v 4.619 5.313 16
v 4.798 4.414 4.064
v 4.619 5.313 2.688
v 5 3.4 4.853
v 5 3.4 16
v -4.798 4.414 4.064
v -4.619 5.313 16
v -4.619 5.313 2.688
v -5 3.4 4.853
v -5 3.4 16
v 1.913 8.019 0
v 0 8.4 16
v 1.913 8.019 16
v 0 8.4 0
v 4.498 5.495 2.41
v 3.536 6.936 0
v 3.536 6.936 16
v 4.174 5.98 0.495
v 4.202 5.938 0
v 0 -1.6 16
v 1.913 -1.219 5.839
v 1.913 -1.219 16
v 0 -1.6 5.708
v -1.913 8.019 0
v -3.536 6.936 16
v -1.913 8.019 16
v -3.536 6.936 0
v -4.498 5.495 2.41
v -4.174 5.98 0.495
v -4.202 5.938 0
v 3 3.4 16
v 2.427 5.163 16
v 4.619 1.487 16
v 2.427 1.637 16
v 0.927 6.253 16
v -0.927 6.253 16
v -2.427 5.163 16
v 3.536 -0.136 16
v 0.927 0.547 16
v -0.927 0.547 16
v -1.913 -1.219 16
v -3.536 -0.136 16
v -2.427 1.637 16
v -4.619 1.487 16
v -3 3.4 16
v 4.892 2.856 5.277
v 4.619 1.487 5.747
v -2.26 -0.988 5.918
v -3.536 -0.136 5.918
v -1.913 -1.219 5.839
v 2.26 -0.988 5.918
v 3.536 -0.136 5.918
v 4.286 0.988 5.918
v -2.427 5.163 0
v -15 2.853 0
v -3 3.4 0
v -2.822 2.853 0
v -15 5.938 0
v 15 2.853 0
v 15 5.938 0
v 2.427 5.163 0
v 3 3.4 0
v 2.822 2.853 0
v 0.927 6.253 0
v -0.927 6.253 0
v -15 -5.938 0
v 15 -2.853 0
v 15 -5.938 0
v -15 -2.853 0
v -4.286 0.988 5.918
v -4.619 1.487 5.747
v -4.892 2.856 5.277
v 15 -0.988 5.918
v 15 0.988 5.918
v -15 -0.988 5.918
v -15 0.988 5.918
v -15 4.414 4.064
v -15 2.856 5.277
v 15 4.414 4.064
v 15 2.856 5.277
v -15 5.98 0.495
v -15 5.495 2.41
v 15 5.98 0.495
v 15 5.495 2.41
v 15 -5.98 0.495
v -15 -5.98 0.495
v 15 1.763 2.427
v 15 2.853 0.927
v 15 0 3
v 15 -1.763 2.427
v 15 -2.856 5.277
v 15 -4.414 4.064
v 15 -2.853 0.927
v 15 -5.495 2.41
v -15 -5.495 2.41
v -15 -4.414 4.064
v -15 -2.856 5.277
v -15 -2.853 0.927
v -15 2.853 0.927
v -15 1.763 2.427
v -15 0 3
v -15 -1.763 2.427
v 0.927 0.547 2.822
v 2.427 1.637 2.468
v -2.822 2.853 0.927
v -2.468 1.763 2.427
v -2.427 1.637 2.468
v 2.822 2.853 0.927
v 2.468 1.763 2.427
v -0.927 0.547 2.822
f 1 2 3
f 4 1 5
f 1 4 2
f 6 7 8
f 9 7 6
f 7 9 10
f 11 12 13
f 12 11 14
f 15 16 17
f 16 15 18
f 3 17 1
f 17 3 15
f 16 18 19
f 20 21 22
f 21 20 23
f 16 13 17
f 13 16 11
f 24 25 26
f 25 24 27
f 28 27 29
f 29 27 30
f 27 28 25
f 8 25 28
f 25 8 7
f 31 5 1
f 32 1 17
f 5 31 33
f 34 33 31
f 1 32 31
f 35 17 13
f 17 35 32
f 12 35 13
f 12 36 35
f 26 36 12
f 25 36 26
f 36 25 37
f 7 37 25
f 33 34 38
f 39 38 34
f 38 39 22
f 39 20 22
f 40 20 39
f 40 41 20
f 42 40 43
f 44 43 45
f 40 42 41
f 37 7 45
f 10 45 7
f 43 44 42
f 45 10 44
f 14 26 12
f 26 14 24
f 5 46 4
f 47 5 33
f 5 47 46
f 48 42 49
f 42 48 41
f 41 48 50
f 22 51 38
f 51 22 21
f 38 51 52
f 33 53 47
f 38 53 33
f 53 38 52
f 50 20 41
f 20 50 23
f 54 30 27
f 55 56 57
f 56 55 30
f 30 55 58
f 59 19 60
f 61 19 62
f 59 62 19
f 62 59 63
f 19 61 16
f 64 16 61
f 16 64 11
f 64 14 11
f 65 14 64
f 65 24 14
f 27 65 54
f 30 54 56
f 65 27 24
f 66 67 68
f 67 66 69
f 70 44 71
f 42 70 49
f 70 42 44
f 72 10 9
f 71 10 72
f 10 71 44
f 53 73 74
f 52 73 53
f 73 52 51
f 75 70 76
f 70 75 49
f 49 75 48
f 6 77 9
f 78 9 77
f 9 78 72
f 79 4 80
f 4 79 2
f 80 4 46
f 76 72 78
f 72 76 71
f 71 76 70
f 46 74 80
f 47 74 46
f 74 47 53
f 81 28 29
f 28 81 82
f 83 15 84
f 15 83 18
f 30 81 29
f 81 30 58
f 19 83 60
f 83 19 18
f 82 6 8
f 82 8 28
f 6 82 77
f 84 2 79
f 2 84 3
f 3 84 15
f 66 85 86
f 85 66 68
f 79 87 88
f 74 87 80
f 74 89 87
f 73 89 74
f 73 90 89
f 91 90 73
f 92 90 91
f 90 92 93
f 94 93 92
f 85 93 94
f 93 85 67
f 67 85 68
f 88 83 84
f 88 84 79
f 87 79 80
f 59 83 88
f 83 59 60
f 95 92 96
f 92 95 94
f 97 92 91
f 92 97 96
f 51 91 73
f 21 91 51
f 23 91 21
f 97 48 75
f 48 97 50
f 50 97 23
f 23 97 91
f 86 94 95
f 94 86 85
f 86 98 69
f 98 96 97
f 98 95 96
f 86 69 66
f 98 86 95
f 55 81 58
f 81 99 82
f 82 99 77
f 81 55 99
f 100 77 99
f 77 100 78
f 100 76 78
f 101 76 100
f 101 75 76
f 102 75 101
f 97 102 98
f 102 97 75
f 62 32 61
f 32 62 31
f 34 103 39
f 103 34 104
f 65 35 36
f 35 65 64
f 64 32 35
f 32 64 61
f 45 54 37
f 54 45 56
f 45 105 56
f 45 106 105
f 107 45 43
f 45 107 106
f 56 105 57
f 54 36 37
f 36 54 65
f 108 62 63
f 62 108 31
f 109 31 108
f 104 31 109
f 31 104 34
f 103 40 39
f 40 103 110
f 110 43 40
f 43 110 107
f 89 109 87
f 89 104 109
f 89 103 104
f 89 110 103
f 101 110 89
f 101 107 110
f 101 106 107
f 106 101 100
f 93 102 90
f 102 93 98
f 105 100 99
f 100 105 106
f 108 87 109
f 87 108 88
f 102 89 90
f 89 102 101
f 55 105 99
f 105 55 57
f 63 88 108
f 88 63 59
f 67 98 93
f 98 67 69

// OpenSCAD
difference() {   
    union() {    
    translate([0,3.4,0])
        color("lightgreen")
            cylinder(r=5.0,h=16.0);
    translate([-15.0,0,0])
        rotate([0,90,0])
            color("lightyellow")
                cylinder(r=6.0,h=30.0);
    }
    
    translate([0,3.4,-15.0])
        cylinder(r=3.0,h=3*15.0);
    translate([-30.0,0,0])
        rotate([0,90,0])
            cylinder(r=3.0,h=2*30.0);
    translate([0,0,-5.0])
        cube([50,50,10.0],center=true);
}
